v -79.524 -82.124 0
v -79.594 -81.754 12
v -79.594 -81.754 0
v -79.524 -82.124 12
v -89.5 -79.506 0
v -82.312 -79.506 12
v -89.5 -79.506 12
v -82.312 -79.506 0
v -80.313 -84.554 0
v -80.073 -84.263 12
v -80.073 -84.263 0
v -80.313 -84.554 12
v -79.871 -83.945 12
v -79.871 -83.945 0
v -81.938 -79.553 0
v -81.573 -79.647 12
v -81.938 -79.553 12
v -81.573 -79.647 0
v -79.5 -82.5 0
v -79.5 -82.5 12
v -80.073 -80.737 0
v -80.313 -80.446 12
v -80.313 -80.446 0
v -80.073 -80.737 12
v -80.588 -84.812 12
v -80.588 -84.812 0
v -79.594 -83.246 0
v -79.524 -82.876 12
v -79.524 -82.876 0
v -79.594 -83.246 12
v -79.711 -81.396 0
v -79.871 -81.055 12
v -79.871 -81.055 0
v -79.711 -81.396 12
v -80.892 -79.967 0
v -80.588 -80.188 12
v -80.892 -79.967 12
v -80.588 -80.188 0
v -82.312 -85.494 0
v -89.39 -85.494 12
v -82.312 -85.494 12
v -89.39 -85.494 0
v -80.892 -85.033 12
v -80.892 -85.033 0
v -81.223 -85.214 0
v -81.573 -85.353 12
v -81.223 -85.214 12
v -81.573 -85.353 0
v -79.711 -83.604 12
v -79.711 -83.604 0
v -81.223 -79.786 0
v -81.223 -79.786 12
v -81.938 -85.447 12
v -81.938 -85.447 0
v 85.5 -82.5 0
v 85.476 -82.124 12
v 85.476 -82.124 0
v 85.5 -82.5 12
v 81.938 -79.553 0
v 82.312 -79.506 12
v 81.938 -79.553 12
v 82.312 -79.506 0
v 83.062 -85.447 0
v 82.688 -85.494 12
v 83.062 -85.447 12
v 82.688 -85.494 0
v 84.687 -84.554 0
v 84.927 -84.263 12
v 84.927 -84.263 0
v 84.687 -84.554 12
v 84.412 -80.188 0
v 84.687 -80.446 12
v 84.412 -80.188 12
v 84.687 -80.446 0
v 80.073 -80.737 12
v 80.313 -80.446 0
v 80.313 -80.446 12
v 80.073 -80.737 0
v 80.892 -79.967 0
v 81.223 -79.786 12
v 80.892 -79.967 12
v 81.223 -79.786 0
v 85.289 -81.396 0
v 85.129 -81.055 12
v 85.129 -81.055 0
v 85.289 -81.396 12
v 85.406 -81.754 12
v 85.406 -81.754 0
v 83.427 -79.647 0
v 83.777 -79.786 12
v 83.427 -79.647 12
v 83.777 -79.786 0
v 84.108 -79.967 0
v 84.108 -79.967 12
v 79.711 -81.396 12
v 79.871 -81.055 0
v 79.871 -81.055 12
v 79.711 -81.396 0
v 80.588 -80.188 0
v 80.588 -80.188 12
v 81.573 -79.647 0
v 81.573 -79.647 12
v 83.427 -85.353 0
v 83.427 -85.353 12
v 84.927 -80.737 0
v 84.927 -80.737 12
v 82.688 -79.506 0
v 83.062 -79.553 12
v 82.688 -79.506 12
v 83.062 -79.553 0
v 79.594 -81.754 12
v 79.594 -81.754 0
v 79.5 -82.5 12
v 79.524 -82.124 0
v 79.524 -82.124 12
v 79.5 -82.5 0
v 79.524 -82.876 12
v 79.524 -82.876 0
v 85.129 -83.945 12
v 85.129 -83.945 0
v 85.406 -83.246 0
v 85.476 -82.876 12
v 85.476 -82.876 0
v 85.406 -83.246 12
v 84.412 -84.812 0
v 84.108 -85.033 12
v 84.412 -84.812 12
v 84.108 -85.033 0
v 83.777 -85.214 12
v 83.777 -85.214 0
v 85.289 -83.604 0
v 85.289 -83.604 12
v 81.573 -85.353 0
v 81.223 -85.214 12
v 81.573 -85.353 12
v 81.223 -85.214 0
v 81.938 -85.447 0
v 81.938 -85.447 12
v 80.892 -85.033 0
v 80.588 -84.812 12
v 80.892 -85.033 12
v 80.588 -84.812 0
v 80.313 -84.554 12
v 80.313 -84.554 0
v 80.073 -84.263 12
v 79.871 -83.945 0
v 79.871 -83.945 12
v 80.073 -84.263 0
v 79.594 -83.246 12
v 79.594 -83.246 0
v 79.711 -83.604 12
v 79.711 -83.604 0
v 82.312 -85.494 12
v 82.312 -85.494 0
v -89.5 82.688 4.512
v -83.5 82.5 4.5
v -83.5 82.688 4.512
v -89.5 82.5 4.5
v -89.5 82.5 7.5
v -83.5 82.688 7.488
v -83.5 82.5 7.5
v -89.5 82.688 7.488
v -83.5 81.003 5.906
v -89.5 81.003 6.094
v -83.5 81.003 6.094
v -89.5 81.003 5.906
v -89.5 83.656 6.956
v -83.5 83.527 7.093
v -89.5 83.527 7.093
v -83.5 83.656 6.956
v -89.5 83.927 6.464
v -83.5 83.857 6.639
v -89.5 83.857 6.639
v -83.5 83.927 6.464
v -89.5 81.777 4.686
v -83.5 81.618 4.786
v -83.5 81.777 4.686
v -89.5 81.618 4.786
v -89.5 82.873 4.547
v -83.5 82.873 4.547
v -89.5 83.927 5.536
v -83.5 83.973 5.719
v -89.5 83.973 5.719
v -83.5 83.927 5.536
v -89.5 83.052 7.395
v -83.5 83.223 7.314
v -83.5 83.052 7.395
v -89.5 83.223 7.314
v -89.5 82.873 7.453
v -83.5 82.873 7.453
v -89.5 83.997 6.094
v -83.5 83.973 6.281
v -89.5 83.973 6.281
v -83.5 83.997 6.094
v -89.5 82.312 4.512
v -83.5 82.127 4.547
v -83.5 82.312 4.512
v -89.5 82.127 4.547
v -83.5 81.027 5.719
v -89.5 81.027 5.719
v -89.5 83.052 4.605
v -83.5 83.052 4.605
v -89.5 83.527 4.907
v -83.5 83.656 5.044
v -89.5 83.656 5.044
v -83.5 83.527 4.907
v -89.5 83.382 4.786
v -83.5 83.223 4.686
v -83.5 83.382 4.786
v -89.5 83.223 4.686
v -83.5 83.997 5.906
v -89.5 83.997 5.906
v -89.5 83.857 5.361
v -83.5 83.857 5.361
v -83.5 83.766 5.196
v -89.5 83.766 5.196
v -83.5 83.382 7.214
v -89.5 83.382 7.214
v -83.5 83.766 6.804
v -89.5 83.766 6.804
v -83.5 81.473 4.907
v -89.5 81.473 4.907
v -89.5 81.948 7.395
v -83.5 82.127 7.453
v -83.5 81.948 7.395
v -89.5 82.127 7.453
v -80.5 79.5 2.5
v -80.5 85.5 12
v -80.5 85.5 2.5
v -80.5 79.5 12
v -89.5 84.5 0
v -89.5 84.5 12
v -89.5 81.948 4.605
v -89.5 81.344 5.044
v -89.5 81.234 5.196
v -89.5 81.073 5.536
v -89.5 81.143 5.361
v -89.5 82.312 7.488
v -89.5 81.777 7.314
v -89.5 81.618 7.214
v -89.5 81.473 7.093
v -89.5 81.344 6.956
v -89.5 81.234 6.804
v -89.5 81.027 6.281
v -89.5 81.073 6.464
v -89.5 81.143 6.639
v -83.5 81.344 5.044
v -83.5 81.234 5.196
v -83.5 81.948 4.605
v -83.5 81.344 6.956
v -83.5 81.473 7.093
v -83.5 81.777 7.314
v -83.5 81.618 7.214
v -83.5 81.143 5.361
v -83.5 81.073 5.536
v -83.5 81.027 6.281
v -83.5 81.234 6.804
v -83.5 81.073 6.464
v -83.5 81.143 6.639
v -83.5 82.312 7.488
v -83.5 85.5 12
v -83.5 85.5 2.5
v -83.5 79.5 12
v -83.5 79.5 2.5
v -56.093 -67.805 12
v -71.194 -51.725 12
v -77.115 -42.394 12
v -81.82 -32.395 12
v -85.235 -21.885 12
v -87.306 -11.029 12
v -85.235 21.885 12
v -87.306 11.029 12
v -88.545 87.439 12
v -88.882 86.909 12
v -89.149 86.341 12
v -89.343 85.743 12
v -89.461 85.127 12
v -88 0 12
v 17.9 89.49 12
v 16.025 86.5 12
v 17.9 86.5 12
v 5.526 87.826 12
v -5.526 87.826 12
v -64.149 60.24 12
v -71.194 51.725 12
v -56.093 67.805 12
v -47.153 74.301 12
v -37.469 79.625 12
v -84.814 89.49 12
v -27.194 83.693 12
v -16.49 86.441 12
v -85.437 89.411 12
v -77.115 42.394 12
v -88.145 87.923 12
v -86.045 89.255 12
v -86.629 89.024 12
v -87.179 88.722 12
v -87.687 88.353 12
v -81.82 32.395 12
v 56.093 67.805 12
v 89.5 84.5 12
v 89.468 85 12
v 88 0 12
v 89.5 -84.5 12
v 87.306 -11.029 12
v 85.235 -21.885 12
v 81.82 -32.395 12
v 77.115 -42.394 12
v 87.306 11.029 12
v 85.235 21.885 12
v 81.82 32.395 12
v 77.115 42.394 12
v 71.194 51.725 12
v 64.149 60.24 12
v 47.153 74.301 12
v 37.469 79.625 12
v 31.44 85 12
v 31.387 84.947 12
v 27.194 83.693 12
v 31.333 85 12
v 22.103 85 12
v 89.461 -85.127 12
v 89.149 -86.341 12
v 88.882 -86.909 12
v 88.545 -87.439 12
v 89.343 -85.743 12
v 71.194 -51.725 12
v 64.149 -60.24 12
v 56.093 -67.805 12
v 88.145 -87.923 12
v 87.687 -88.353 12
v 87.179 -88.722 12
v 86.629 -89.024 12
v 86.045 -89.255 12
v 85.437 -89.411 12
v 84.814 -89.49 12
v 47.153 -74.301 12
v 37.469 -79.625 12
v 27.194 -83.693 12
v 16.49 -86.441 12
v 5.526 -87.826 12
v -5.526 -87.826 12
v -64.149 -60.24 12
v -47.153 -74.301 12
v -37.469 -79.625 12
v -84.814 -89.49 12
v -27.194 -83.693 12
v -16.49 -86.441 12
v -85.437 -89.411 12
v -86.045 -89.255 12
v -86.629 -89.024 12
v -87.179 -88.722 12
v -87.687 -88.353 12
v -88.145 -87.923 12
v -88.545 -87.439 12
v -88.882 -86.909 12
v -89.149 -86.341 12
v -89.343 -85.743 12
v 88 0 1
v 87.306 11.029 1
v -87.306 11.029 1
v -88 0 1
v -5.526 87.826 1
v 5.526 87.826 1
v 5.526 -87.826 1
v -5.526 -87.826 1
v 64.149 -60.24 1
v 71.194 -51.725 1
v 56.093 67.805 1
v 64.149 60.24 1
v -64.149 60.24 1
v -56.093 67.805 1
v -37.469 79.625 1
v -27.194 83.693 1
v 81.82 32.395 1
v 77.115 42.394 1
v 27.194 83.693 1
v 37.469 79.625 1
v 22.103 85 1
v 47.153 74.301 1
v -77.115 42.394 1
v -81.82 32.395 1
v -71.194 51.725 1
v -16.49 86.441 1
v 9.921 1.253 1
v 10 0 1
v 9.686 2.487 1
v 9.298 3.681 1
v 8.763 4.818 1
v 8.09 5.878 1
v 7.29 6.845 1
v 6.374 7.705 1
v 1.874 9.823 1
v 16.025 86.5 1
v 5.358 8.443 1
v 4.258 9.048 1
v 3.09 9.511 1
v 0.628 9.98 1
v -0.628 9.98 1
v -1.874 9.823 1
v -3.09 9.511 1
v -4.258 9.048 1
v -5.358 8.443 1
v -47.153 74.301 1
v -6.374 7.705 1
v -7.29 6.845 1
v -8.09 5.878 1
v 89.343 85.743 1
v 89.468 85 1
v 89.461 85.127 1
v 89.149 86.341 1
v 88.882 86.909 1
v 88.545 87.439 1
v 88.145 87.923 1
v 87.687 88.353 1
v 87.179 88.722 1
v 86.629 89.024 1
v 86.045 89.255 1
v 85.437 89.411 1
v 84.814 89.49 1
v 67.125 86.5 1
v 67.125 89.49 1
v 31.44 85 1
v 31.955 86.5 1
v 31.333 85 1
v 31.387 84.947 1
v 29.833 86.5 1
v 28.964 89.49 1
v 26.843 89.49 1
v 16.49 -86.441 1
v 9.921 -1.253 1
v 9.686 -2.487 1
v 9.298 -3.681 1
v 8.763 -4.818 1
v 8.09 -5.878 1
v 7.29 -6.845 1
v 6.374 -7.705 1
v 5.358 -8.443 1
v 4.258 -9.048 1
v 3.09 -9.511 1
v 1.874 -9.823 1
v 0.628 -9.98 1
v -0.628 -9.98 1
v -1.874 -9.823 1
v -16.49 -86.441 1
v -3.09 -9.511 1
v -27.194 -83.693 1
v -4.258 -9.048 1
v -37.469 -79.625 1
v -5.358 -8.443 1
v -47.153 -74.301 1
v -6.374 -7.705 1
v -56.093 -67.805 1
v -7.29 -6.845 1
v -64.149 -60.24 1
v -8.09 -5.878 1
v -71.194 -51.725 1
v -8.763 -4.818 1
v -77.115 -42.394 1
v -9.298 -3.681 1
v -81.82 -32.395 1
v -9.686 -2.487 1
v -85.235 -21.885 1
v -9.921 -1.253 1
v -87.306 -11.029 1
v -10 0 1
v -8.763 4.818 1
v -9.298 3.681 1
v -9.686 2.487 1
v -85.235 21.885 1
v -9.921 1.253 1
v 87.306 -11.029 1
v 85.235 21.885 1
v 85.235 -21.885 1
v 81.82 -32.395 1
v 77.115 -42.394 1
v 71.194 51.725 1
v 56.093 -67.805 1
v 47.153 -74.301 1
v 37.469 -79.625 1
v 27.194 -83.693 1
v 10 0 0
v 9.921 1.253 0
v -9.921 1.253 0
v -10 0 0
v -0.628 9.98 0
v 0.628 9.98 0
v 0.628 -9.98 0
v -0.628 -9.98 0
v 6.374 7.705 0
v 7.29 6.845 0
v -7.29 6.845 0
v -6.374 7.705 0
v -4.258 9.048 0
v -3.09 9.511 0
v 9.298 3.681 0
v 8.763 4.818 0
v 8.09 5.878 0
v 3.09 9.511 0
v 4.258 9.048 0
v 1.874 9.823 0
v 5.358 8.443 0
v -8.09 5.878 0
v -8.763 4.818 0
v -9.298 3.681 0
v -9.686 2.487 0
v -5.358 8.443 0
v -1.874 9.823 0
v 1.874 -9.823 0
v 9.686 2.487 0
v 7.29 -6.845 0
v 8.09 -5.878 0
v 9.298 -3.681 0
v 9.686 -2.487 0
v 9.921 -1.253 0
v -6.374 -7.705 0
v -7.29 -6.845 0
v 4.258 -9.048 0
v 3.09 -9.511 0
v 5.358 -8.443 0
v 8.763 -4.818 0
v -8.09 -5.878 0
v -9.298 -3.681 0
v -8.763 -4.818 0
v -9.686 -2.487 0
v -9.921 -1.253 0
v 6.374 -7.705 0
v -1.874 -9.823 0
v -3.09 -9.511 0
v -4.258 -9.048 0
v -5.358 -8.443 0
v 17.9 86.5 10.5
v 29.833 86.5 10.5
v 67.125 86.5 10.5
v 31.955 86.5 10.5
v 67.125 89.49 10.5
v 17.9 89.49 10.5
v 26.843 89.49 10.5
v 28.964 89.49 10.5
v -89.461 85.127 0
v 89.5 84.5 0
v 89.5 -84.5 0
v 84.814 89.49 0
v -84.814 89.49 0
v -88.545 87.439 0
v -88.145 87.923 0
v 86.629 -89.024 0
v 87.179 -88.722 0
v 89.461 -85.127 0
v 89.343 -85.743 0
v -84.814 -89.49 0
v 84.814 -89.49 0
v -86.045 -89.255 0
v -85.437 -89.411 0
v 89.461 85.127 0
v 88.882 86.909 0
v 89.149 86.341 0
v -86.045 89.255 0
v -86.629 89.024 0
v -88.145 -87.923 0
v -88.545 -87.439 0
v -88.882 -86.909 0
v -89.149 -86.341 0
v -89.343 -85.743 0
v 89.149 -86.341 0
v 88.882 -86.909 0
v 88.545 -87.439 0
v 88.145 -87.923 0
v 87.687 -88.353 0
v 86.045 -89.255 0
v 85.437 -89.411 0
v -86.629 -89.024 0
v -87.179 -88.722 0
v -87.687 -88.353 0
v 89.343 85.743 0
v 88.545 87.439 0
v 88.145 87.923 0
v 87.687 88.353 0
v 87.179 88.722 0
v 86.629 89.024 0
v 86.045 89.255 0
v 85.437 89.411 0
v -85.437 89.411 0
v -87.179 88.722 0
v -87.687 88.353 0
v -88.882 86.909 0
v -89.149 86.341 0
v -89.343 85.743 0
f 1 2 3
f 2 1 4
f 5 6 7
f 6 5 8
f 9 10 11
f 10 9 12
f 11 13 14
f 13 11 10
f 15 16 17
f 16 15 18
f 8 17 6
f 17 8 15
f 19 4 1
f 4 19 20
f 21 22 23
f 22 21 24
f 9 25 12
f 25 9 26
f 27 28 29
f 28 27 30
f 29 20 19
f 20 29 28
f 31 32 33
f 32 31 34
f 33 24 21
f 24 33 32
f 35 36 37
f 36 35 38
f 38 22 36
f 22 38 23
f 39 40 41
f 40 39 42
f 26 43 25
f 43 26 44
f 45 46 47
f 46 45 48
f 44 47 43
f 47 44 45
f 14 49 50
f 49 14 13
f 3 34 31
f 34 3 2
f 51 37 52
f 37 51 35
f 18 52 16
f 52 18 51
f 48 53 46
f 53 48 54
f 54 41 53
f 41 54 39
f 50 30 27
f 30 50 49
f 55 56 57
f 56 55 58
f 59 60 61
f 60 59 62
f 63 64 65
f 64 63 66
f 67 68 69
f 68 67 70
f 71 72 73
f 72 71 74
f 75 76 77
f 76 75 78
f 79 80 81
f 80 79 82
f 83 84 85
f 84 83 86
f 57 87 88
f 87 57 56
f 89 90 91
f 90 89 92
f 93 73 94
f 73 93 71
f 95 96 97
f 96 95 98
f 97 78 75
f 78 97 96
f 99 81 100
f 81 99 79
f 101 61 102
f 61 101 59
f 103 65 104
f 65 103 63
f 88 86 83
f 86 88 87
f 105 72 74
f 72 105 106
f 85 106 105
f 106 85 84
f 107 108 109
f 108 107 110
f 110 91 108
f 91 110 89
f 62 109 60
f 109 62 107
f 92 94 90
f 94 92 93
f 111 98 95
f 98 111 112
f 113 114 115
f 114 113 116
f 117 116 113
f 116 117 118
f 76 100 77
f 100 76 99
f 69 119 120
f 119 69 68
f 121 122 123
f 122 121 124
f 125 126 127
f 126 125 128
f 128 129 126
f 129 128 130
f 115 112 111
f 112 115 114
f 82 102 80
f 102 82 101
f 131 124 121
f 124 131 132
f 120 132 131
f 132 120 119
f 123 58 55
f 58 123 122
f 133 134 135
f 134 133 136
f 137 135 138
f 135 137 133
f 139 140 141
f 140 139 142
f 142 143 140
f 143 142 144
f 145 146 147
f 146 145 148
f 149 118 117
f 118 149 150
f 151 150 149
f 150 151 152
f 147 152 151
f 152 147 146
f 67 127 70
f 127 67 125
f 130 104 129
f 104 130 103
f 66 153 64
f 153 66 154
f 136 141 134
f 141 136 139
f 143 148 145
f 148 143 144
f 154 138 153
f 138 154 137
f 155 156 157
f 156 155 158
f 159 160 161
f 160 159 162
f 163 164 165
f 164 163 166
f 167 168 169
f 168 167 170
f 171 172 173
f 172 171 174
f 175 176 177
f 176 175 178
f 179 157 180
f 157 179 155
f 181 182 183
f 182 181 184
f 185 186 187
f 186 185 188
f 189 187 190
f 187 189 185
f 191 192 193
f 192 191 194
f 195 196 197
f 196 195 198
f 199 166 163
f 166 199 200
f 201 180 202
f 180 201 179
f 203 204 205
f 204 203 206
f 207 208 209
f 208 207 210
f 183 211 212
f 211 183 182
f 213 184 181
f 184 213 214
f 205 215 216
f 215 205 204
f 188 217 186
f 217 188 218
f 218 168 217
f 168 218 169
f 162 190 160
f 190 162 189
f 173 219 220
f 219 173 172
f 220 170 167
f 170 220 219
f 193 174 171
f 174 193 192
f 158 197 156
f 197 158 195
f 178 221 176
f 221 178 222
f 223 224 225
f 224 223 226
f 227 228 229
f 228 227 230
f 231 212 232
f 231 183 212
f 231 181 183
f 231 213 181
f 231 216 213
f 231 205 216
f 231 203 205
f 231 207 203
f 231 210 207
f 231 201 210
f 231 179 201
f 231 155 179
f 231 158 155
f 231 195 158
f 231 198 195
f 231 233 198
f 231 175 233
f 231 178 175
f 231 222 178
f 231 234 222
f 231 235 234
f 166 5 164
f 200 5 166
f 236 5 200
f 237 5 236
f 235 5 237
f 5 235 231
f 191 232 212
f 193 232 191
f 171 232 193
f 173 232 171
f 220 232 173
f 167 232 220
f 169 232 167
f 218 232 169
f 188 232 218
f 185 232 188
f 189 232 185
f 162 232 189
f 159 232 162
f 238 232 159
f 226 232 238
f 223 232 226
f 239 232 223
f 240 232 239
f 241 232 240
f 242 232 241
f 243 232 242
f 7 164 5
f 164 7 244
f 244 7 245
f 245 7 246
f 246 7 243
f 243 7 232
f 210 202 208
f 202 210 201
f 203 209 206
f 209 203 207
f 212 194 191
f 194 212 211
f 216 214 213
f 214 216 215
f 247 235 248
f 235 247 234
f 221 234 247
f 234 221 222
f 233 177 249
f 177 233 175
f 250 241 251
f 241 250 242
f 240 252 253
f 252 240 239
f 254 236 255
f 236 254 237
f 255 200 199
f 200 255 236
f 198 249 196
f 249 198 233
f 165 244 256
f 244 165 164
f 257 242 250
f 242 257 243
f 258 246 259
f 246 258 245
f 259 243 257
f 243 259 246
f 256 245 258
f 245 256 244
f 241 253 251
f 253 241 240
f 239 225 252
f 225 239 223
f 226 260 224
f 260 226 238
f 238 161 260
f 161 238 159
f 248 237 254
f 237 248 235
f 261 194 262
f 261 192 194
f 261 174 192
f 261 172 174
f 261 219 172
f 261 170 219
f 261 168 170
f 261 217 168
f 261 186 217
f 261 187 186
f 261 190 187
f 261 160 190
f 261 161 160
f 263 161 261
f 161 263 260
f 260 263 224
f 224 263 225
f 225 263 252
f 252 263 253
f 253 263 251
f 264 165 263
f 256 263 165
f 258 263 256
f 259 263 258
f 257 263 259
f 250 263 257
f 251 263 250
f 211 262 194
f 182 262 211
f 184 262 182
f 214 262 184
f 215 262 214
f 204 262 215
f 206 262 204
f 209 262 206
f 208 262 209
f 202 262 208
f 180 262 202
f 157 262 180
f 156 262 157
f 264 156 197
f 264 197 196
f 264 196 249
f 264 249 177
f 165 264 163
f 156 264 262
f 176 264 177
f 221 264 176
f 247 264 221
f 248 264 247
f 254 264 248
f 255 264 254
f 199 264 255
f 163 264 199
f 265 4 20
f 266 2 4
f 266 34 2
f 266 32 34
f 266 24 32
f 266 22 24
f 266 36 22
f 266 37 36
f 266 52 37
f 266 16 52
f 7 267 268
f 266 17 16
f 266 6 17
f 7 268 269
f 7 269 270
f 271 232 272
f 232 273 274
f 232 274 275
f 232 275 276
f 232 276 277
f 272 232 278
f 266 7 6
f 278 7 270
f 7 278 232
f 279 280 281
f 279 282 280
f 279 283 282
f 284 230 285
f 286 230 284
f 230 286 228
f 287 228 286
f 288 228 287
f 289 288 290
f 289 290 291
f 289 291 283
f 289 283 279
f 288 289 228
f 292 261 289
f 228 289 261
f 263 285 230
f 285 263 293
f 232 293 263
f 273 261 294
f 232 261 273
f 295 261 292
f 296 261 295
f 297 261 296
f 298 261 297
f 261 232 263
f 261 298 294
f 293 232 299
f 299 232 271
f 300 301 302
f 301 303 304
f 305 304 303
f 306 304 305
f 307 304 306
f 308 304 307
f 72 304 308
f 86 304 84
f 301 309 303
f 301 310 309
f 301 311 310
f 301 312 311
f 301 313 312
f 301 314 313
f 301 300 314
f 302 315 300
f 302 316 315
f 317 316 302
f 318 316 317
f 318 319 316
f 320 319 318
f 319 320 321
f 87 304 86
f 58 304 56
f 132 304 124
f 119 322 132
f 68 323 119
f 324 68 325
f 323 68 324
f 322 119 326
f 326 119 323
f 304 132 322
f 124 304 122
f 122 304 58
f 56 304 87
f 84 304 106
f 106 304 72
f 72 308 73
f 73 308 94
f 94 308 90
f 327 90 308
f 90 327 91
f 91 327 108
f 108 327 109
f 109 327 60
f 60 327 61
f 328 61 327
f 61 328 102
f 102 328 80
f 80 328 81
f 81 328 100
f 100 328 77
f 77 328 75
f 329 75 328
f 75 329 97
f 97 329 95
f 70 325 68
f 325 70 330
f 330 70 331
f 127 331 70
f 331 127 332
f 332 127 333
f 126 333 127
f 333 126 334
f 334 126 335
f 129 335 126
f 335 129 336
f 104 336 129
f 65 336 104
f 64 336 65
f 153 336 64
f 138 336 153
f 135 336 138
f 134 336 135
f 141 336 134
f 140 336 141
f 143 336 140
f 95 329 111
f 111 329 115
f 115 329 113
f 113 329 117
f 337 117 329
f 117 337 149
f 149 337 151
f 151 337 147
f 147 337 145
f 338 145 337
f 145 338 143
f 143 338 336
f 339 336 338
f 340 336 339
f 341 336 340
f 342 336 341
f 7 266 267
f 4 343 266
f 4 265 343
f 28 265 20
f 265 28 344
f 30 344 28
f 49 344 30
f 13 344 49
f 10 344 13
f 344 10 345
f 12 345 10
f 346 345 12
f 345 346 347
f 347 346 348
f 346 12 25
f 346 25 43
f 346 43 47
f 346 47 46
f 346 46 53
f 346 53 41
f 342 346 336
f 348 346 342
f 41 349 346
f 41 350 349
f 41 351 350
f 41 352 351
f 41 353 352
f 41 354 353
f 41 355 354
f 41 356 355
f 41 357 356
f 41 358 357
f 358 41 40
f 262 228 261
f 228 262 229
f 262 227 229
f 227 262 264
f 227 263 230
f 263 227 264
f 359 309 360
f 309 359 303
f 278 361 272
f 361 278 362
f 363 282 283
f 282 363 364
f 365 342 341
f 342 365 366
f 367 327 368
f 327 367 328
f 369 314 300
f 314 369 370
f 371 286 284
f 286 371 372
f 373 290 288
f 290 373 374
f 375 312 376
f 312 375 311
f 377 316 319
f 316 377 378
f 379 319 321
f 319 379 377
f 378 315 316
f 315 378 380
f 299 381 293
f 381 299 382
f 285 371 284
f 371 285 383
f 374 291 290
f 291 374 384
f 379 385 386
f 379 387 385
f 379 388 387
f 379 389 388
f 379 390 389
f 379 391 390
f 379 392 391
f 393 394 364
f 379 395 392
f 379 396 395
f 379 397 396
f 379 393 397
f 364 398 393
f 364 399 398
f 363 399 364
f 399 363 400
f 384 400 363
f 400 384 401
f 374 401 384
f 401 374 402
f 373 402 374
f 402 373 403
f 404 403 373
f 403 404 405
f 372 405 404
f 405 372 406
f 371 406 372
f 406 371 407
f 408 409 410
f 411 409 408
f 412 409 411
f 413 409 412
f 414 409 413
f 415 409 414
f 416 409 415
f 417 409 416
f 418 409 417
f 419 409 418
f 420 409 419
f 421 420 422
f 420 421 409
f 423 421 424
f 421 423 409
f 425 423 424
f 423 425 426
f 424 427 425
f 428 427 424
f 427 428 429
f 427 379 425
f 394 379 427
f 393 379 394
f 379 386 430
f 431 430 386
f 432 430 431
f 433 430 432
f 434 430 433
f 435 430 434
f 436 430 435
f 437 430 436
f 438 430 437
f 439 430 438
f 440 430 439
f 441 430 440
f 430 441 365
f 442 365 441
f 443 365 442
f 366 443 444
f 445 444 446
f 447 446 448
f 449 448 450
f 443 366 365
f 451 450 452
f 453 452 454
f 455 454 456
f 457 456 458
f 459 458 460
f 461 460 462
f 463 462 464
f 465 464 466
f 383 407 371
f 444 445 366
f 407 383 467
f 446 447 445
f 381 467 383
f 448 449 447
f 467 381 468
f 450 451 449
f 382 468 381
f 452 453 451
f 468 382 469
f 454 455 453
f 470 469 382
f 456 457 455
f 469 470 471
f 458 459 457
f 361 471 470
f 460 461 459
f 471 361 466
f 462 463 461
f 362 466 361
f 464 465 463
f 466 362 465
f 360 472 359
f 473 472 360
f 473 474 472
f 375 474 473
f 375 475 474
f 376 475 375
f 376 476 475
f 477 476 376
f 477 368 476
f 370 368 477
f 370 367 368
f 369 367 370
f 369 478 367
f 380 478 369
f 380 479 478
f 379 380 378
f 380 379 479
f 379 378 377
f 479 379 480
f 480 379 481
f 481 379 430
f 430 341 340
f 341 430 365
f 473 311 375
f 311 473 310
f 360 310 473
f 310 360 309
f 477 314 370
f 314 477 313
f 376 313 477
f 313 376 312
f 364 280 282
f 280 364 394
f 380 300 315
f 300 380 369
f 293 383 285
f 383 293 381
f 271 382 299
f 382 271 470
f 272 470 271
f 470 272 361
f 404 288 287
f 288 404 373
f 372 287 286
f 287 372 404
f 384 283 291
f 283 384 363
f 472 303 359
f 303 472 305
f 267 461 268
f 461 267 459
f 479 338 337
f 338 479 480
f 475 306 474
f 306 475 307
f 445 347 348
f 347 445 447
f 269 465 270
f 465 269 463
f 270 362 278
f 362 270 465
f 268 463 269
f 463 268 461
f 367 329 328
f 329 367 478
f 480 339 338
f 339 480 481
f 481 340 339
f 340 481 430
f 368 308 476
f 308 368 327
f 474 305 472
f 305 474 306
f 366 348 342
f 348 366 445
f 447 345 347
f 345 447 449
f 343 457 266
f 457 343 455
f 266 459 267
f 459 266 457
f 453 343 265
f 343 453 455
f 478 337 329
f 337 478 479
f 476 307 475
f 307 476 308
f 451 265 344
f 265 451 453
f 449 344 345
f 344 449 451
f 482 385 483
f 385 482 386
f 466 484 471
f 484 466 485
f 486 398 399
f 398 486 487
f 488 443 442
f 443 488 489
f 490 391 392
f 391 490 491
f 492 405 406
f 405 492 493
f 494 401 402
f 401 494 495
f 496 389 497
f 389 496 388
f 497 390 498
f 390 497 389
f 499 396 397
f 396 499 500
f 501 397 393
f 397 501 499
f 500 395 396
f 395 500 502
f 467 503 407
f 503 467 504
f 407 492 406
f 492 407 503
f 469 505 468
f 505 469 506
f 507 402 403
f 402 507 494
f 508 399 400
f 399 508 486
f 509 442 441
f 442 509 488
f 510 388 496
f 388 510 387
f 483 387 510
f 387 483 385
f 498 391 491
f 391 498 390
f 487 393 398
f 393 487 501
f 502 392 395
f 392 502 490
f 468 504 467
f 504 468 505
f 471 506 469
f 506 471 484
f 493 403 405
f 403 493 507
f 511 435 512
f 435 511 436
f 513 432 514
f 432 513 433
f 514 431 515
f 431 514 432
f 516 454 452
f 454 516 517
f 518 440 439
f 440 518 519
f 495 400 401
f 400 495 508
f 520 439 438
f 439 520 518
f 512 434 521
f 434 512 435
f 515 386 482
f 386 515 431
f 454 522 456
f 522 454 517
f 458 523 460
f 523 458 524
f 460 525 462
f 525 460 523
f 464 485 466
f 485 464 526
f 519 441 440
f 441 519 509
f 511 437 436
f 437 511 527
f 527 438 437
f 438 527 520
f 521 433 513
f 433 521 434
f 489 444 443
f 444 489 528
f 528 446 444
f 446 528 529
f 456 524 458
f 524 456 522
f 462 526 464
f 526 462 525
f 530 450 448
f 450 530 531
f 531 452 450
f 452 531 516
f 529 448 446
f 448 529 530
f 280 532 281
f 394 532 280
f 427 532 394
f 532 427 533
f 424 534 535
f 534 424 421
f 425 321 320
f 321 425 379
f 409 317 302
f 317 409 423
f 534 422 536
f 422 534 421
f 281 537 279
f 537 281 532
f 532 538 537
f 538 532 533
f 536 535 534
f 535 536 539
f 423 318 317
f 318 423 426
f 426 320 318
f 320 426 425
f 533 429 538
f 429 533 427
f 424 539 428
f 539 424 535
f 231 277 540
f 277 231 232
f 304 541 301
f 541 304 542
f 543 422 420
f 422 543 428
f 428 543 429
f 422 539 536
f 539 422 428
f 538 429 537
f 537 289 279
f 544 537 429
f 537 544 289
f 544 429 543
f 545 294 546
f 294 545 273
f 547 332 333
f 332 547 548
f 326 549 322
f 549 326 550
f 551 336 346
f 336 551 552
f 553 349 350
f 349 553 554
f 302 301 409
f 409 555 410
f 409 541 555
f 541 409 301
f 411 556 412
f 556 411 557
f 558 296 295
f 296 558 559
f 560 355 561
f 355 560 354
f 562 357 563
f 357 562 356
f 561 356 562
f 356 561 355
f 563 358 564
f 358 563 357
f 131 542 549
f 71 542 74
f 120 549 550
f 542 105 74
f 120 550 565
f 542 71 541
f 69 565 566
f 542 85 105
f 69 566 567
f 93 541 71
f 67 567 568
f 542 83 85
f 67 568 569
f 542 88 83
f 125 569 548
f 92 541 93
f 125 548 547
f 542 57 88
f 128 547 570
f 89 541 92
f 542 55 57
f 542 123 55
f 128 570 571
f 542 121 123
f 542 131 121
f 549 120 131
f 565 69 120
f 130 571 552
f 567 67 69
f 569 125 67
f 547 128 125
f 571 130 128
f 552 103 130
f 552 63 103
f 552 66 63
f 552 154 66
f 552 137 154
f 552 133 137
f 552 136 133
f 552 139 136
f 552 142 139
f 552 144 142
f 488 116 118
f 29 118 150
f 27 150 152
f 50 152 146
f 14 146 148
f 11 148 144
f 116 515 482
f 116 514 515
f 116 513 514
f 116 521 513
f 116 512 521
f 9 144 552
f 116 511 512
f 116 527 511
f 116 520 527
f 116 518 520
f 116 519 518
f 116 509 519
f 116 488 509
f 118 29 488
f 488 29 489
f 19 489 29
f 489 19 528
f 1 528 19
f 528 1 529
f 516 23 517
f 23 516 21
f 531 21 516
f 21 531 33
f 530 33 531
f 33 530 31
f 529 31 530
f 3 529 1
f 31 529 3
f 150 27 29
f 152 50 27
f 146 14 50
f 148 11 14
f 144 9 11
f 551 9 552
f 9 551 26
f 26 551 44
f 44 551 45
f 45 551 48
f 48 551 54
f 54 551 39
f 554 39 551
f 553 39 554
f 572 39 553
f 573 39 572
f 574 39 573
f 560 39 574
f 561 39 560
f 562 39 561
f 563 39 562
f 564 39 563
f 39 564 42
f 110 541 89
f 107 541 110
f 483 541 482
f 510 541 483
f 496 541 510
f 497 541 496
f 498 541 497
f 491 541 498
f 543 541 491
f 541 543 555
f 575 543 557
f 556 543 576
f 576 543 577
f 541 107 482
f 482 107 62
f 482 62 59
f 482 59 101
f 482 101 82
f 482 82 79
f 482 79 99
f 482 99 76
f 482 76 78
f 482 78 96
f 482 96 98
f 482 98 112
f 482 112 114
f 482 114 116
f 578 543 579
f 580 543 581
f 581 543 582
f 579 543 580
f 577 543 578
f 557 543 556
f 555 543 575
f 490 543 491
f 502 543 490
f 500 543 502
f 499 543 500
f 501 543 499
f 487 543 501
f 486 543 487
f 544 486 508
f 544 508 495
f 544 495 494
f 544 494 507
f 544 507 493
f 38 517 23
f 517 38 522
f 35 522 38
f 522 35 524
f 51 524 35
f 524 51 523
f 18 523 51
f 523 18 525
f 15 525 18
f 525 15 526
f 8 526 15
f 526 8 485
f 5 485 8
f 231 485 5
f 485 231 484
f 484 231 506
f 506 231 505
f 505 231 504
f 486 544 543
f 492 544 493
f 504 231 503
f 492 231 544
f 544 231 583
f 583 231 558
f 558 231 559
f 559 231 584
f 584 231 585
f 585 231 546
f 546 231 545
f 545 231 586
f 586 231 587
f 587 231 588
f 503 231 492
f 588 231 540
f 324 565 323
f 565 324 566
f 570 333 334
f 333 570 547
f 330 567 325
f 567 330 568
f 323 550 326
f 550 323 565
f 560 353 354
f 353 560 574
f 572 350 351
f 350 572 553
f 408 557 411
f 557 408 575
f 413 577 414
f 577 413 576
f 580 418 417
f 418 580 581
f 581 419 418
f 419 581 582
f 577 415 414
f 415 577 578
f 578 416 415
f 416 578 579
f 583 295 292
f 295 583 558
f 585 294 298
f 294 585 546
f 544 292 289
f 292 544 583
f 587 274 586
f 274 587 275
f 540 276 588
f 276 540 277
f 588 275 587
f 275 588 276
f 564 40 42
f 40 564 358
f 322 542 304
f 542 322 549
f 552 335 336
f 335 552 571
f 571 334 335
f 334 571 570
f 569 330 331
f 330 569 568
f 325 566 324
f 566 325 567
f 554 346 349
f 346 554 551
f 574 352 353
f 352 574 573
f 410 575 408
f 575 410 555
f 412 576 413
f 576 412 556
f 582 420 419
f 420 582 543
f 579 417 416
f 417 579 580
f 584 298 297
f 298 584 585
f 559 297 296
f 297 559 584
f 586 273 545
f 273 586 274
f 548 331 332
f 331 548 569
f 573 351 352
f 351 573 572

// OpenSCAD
$fn = 50;


difference() {
	union() {
		translate(v = [0, 0, 0]) {
			rotate(a = [0, 0, 0]) {
				hull() {
					translate(v = [-84.5000000000, 84.5000000000, 0]) {
						rotate(a = [0, 0, 0]) {
							translate(v = [0, 0, 0]) {
								rotate(a = [0, 0, 0]) {
									cylinder(h = 12, r = 5);
								}
							}
						}
					}
					translate(v = [84.5000000000, 84.5000000000, 0]) {
						rotate(a = [0, 0, 0]) {
							translate(v = [0, 0, 0]) {
								rotate(a = [0, 0, 0]) {
									cylinder(h = 12, r = 5);
								}
							}
						}
					}
					translate(v = [-84.5000000000, -84.5000000000, 0]) {
						rotate(a = [0, 0, 0]) {
							translate(v = [0, 0, 0]) {
								rotate(a = [0, 0, 0]) {
									cylinder(h = 12, r = 5);
								}
							}
						}
					}
					translate(v = [84.5000000000, -84.5000000000, 0]) {
						rotate(a = [0, 0, 0]) {
							translate(v = [0, 0, 0]) {
								rotate(a = [0, 0, 0]) {
									cylinder(h = 12, r = 5);
								}
							}
						}
					}
				}
			}
		}
	}
	union() {
		translate(v = [-90.0000000000, -82.5000000000, -125]) {
			rotate(a = [0, 0, 0]) {
				hull() {
					translate(v = [7.5000000000, 0, 0]) {
						rotate(a = [0, 0, 0]) {
							translate(v = [0, 0, 0]) {
								rotate(a = [0, 0, 0]) {
									cylinder(h = 250, r = 3.0000000000);
								}
							}
						}
					}
					translate(v = [-7.5000000000, 0, 0]) {
						rotate(a = [0, 0, 0]) {
							translate(v = [0, 0, 0]) {
								rotate(a = [0, 0, 0]) {
									cylinder(h = 250, r = 3.0000000000);
								}
							}
						}
					}
				}
			}
		}
		translate(v = [82.5000000000, -82.5000000000, -125.0000000000]) {
			rotate(a = [0, 0, 0]) {
				cylinder(h = 250, r = 3.0000000000);
			}
		}
		translate(v = [-89.5000000000, 82.5000000000, 6.0000000000]) {
			rotate(a = [0, 90, 0]) {
				cylinder(h = 9, r = 1.5000000000);
			}
		}
		translate(v = [-83.5000000000, 79.5000000000, 2.5000000000]) {
			rotate(a = [0, 0, 0]) {
				cube(size = [3, 6, 9.5000000000]);
			}
		}
		translate(v = [0, 0, 1.0000000000]) {
			rotate(a = [0, 0, 0]) {
				cylinder(h = 14, r = 88.0000000000);
			}
		}
		translate(v = [0, 0, -6.0000000000]) {
			rotate(a = [0, 0, 0]) {
				cylinder(h = 12, r = 10.0000000000);
			}
		}
		translate(v = [0.0000000000, 85.0000000000, 1]) {
			rotate(a = [0, 0, 0]) {
				cube(size = [89.5000000000, 1.5000000000, 14]);
			}
		}
		translate(v = [67.1250000000, 85.0000000000, 1]) {
			rotate(a = [0, 0, 0]) {
				cube(size = [22.3750000000, 4.5000000000, 14]);
			}
		}
		translate(v = [17.9000000000, 85.0000000000, 10.5000000000]) {
			rotate(a = [0, 0, 0]) {
				cube(size = [71.6000000000, 4.5000000000, 1.5000000000]);
			}
		}
		translate(v = [26.0833333333, 90.2500000000, 1]) {
			rotate(a = [0, 0, -45]) {
				cube(size = [7.5000000000, 1.5000000000, 14]);
			}
		}
	}
}
